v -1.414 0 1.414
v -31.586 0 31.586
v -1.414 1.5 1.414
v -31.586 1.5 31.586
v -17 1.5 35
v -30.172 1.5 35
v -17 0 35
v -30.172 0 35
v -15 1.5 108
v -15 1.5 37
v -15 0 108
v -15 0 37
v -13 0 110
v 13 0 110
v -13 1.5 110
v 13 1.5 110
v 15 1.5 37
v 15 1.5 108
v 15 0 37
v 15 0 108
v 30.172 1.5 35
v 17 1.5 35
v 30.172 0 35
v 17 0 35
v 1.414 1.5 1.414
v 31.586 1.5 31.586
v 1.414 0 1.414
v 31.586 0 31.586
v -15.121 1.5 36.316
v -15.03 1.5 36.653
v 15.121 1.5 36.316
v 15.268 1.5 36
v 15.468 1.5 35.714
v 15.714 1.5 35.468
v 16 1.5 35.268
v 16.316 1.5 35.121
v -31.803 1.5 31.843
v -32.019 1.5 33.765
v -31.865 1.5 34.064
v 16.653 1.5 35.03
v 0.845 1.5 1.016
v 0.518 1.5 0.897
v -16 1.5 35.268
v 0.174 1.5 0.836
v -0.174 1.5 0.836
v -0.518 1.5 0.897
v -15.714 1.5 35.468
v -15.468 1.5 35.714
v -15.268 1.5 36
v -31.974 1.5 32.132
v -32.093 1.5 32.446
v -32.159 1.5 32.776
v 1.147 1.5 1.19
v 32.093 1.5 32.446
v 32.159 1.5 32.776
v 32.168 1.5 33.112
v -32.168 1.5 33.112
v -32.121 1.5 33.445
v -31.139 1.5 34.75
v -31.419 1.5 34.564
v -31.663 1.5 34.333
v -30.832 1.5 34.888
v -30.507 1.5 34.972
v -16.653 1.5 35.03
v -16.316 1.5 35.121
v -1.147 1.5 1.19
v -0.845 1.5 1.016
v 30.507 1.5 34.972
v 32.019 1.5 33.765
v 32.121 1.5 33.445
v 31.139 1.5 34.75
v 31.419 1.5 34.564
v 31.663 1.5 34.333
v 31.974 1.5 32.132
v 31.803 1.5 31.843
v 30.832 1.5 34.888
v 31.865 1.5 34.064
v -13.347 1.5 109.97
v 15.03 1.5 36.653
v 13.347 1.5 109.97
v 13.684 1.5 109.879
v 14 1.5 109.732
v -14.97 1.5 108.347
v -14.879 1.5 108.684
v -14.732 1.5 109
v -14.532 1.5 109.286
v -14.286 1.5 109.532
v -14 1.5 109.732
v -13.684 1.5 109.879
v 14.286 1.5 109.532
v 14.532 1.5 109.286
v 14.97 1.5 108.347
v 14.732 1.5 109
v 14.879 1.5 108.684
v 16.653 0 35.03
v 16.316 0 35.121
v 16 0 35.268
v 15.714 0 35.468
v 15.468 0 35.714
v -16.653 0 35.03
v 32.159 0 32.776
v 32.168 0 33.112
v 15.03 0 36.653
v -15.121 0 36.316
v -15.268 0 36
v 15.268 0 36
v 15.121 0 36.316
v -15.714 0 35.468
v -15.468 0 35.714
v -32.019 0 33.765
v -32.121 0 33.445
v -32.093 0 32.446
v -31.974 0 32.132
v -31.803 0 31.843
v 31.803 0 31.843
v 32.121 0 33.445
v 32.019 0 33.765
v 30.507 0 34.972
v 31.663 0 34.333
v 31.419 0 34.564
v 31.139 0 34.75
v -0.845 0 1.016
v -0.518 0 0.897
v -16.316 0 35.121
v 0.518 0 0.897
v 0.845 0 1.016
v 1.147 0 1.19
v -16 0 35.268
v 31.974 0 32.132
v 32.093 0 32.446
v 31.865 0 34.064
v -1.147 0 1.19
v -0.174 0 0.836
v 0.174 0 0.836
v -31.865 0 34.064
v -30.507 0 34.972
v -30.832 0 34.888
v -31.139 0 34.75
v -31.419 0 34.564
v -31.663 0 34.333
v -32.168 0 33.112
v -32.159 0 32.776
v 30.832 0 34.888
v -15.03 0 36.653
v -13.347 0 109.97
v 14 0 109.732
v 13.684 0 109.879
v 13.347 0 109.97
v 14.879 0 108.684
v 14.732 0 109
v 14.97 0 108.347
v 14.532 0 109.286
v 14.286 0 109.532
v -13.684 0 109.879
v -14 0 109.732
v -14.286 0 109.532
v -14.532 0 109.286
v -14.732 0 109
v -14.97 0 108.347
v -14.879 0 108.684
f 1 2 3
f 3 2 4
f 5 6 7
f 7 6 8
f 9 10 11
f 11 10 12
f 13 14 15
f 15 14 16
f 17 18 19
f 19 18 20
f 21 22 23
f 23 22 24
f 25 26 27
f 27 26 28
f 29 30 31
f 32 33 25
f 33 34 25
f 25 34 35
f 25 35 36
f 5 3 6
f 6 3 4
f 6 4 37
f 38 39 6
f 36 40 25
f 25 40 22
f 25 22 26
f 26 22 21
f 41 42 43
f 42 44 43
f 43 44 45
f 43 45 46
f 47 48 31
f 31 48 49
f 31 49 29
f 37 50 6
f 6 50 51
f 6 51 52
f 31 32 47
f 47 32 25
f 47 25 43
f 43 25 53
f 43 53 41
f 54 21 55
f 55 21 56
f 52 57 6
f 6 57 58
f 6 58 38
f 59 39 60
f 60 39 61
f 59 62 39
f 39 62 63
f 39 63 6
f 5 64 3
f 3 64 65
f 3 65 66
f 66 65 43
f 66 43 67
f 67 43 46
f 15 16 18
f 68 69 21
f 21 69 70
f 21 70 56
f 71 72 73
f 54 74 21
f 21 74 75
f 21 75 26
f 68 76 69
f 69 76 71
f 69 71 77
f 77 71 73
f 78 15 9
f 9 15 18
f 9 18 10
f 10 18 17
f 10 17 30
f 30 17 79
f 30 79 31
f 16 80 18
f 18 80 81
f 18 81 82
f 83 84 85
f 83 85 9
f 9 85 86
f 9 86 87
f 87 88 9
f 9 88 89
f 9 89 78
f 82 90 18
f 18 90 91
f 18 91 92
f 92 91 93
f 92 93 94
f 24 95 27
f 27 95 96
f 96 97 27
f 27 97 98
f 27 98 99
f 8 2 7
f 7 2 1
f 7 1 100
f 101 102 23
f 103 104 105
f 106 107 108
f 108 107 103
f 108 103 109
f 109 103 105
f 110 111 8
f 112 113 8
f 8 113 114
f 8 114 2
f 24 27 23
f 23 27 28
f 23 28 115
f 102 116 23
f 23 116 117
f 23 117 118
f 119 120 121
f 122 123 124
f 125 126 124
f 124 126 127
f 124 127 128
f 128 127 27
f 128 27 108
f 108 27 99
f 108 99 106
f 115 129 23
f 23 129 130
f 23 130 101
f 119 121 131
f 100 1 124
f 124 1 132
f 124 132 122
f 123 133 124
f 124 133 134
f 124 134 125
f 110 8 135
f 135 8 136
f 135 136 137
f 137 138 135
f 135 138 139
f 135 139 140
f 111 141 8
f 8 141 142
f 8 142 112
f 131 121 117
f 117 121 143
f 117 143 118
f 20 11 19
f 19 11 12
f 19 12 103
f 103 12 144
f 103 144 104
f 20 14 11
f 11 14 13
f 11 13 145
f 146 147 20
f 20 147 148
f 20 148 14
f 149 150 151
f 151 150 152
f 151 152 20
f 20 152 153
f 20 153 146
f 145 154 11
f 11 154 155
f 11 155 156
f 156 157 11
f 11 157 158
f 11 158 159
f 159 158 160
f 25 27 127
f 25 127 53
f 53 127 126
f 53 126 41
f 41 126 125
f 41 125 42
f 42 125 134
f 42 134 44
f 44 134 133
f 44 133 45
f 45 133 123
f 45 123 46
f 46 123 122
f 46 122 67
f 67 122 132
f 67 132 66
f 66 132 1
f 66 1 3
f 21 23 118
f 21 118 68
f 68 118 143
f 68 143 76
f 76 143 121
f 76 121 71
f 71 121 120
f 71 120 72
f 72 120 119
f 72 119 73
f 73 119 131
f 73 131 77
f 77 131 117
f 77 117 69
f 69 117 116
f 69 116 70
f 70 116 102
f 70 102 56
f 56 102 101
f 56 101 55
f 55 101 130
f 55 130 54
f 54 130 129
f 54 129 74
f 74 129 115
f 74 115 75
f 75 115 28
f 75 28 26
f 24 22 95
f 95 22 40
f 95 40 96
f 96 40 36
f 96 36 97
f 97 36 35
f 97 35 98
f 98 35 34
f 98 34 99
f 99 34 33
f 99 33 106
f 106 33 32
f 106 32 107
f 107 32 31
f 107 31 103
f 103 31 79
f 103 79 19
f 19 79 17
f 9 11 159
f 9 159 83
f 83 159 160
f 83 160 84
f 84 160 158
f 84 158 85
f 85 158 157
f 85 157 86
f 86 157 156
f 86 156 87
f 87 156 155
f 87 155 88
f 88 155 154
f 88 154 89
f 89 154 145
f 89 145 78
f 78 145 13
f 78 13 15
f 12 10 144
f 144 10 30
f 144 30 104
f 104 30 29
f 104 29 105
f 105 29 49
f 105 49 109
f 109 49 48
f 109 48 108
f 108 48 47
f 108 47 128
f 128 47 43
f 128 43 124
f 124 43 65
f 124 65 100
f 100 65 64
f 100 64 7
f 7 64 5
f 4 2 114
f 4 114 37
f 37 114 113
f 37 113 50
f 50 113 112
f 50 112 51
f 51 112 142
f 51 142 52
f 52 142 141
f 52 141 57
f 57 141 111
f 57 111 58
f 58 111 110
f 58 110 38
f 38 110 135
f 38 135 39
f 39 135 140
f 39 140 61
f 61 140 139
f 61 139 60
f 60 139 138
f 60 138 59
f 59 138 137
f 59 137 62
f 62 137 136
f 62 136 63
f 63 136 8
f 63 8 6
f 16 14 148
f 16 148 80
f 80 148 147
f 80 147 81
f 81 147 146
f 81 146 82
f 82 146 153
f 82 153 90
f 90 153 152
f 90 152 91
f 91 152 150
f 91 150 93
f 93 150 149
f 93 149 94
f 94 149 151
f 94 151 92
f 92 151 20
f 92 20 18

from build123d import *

# Parameters (mm, degrees)
BOSS_EXTRUDE1_DEPTH = 1.5
FILLET1_R           = 2


with BuildPart() as part:
    # Sketch1 → Boss-Extrude1 (new body)
    with BuildSketch(Plane(origin=(0, 0, 0), x_dir=(1, 0, 0), z_dir=(0, 1, 0))):
        Polygon((0, 0), (35, -35), (15, -35), (15, -110), (-15, -110), (-15, -35), (-35, -35), align=None)
    extrude(amount=BOSS_EXTRUDE1_DEPTH)

    # Fillet1
    fillet1_edges = [part.edges().sort_by_distance(p)[0] for p in [
        (0, 0.75, 0),
        (35, 0.75, 35),
        (15, 0.75, 35),
        (15, 0.75, 110),
        (-15, 0.75, 110),
        (-15, 0.75, 35),
        (-35, 0.75, 35),
    ]]
    fillet(fillet1_edges, radius=FILLET1_R)


solid = part.part
